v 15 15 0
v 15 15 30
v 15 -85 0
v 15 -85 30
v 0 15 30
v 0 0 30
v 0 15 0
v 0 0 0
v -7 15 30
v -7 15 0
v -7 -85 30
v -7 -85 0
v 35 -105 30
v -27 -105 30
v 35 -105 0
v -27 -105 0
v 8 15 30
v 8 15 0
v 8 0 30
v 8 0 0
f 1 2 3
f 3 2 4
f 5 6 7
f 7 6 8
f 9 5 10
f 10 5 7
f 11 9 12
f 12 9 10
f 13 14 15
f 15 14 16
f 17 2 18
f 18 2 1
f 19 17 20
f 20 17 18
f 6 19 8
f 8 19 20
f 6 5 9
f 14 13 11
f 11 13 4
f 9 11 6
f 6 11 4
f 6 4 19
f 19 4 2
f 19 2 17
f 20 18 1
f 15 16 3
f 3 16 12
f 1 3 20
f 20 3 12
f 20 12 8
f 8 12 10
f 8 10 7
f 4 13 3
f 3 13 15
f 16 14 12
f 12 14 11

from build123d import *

# Parameters (mm, degrees)
BOSS_EXTRUDE1_DEPTH = 30
BOSS_EXTRUDE2_DEPTH = 30


with BuildPart() as part:
    # Sketch1 → Boss-Extrude1 (new body)
    with BuildSketch(Plane.XY):
        Polygon((0, 0), (8, 0), (8, 15), (15, 15), (15, -105), (-7, -105), (-7, 15), (0, 15), align=None)
    extrude(amount=BOSS_EXTRUDE1_DEPTH)

    # Sketch2 → Boss-Extrude2 (add)
    with BuildSketch(Plane.XY.offset(30)):
        Polygon((15, -85), (35, -105), (15, -105), align=None)
    boss_extrude2 = extrude(amount=-BOSS_EXTRUDE2_DEPTH)

    # Mirror1: Boss-Extrude2 across plane
    add(boss_extrude2.mirror(Plane.ZY.offset(-4)))


solid = part.part
